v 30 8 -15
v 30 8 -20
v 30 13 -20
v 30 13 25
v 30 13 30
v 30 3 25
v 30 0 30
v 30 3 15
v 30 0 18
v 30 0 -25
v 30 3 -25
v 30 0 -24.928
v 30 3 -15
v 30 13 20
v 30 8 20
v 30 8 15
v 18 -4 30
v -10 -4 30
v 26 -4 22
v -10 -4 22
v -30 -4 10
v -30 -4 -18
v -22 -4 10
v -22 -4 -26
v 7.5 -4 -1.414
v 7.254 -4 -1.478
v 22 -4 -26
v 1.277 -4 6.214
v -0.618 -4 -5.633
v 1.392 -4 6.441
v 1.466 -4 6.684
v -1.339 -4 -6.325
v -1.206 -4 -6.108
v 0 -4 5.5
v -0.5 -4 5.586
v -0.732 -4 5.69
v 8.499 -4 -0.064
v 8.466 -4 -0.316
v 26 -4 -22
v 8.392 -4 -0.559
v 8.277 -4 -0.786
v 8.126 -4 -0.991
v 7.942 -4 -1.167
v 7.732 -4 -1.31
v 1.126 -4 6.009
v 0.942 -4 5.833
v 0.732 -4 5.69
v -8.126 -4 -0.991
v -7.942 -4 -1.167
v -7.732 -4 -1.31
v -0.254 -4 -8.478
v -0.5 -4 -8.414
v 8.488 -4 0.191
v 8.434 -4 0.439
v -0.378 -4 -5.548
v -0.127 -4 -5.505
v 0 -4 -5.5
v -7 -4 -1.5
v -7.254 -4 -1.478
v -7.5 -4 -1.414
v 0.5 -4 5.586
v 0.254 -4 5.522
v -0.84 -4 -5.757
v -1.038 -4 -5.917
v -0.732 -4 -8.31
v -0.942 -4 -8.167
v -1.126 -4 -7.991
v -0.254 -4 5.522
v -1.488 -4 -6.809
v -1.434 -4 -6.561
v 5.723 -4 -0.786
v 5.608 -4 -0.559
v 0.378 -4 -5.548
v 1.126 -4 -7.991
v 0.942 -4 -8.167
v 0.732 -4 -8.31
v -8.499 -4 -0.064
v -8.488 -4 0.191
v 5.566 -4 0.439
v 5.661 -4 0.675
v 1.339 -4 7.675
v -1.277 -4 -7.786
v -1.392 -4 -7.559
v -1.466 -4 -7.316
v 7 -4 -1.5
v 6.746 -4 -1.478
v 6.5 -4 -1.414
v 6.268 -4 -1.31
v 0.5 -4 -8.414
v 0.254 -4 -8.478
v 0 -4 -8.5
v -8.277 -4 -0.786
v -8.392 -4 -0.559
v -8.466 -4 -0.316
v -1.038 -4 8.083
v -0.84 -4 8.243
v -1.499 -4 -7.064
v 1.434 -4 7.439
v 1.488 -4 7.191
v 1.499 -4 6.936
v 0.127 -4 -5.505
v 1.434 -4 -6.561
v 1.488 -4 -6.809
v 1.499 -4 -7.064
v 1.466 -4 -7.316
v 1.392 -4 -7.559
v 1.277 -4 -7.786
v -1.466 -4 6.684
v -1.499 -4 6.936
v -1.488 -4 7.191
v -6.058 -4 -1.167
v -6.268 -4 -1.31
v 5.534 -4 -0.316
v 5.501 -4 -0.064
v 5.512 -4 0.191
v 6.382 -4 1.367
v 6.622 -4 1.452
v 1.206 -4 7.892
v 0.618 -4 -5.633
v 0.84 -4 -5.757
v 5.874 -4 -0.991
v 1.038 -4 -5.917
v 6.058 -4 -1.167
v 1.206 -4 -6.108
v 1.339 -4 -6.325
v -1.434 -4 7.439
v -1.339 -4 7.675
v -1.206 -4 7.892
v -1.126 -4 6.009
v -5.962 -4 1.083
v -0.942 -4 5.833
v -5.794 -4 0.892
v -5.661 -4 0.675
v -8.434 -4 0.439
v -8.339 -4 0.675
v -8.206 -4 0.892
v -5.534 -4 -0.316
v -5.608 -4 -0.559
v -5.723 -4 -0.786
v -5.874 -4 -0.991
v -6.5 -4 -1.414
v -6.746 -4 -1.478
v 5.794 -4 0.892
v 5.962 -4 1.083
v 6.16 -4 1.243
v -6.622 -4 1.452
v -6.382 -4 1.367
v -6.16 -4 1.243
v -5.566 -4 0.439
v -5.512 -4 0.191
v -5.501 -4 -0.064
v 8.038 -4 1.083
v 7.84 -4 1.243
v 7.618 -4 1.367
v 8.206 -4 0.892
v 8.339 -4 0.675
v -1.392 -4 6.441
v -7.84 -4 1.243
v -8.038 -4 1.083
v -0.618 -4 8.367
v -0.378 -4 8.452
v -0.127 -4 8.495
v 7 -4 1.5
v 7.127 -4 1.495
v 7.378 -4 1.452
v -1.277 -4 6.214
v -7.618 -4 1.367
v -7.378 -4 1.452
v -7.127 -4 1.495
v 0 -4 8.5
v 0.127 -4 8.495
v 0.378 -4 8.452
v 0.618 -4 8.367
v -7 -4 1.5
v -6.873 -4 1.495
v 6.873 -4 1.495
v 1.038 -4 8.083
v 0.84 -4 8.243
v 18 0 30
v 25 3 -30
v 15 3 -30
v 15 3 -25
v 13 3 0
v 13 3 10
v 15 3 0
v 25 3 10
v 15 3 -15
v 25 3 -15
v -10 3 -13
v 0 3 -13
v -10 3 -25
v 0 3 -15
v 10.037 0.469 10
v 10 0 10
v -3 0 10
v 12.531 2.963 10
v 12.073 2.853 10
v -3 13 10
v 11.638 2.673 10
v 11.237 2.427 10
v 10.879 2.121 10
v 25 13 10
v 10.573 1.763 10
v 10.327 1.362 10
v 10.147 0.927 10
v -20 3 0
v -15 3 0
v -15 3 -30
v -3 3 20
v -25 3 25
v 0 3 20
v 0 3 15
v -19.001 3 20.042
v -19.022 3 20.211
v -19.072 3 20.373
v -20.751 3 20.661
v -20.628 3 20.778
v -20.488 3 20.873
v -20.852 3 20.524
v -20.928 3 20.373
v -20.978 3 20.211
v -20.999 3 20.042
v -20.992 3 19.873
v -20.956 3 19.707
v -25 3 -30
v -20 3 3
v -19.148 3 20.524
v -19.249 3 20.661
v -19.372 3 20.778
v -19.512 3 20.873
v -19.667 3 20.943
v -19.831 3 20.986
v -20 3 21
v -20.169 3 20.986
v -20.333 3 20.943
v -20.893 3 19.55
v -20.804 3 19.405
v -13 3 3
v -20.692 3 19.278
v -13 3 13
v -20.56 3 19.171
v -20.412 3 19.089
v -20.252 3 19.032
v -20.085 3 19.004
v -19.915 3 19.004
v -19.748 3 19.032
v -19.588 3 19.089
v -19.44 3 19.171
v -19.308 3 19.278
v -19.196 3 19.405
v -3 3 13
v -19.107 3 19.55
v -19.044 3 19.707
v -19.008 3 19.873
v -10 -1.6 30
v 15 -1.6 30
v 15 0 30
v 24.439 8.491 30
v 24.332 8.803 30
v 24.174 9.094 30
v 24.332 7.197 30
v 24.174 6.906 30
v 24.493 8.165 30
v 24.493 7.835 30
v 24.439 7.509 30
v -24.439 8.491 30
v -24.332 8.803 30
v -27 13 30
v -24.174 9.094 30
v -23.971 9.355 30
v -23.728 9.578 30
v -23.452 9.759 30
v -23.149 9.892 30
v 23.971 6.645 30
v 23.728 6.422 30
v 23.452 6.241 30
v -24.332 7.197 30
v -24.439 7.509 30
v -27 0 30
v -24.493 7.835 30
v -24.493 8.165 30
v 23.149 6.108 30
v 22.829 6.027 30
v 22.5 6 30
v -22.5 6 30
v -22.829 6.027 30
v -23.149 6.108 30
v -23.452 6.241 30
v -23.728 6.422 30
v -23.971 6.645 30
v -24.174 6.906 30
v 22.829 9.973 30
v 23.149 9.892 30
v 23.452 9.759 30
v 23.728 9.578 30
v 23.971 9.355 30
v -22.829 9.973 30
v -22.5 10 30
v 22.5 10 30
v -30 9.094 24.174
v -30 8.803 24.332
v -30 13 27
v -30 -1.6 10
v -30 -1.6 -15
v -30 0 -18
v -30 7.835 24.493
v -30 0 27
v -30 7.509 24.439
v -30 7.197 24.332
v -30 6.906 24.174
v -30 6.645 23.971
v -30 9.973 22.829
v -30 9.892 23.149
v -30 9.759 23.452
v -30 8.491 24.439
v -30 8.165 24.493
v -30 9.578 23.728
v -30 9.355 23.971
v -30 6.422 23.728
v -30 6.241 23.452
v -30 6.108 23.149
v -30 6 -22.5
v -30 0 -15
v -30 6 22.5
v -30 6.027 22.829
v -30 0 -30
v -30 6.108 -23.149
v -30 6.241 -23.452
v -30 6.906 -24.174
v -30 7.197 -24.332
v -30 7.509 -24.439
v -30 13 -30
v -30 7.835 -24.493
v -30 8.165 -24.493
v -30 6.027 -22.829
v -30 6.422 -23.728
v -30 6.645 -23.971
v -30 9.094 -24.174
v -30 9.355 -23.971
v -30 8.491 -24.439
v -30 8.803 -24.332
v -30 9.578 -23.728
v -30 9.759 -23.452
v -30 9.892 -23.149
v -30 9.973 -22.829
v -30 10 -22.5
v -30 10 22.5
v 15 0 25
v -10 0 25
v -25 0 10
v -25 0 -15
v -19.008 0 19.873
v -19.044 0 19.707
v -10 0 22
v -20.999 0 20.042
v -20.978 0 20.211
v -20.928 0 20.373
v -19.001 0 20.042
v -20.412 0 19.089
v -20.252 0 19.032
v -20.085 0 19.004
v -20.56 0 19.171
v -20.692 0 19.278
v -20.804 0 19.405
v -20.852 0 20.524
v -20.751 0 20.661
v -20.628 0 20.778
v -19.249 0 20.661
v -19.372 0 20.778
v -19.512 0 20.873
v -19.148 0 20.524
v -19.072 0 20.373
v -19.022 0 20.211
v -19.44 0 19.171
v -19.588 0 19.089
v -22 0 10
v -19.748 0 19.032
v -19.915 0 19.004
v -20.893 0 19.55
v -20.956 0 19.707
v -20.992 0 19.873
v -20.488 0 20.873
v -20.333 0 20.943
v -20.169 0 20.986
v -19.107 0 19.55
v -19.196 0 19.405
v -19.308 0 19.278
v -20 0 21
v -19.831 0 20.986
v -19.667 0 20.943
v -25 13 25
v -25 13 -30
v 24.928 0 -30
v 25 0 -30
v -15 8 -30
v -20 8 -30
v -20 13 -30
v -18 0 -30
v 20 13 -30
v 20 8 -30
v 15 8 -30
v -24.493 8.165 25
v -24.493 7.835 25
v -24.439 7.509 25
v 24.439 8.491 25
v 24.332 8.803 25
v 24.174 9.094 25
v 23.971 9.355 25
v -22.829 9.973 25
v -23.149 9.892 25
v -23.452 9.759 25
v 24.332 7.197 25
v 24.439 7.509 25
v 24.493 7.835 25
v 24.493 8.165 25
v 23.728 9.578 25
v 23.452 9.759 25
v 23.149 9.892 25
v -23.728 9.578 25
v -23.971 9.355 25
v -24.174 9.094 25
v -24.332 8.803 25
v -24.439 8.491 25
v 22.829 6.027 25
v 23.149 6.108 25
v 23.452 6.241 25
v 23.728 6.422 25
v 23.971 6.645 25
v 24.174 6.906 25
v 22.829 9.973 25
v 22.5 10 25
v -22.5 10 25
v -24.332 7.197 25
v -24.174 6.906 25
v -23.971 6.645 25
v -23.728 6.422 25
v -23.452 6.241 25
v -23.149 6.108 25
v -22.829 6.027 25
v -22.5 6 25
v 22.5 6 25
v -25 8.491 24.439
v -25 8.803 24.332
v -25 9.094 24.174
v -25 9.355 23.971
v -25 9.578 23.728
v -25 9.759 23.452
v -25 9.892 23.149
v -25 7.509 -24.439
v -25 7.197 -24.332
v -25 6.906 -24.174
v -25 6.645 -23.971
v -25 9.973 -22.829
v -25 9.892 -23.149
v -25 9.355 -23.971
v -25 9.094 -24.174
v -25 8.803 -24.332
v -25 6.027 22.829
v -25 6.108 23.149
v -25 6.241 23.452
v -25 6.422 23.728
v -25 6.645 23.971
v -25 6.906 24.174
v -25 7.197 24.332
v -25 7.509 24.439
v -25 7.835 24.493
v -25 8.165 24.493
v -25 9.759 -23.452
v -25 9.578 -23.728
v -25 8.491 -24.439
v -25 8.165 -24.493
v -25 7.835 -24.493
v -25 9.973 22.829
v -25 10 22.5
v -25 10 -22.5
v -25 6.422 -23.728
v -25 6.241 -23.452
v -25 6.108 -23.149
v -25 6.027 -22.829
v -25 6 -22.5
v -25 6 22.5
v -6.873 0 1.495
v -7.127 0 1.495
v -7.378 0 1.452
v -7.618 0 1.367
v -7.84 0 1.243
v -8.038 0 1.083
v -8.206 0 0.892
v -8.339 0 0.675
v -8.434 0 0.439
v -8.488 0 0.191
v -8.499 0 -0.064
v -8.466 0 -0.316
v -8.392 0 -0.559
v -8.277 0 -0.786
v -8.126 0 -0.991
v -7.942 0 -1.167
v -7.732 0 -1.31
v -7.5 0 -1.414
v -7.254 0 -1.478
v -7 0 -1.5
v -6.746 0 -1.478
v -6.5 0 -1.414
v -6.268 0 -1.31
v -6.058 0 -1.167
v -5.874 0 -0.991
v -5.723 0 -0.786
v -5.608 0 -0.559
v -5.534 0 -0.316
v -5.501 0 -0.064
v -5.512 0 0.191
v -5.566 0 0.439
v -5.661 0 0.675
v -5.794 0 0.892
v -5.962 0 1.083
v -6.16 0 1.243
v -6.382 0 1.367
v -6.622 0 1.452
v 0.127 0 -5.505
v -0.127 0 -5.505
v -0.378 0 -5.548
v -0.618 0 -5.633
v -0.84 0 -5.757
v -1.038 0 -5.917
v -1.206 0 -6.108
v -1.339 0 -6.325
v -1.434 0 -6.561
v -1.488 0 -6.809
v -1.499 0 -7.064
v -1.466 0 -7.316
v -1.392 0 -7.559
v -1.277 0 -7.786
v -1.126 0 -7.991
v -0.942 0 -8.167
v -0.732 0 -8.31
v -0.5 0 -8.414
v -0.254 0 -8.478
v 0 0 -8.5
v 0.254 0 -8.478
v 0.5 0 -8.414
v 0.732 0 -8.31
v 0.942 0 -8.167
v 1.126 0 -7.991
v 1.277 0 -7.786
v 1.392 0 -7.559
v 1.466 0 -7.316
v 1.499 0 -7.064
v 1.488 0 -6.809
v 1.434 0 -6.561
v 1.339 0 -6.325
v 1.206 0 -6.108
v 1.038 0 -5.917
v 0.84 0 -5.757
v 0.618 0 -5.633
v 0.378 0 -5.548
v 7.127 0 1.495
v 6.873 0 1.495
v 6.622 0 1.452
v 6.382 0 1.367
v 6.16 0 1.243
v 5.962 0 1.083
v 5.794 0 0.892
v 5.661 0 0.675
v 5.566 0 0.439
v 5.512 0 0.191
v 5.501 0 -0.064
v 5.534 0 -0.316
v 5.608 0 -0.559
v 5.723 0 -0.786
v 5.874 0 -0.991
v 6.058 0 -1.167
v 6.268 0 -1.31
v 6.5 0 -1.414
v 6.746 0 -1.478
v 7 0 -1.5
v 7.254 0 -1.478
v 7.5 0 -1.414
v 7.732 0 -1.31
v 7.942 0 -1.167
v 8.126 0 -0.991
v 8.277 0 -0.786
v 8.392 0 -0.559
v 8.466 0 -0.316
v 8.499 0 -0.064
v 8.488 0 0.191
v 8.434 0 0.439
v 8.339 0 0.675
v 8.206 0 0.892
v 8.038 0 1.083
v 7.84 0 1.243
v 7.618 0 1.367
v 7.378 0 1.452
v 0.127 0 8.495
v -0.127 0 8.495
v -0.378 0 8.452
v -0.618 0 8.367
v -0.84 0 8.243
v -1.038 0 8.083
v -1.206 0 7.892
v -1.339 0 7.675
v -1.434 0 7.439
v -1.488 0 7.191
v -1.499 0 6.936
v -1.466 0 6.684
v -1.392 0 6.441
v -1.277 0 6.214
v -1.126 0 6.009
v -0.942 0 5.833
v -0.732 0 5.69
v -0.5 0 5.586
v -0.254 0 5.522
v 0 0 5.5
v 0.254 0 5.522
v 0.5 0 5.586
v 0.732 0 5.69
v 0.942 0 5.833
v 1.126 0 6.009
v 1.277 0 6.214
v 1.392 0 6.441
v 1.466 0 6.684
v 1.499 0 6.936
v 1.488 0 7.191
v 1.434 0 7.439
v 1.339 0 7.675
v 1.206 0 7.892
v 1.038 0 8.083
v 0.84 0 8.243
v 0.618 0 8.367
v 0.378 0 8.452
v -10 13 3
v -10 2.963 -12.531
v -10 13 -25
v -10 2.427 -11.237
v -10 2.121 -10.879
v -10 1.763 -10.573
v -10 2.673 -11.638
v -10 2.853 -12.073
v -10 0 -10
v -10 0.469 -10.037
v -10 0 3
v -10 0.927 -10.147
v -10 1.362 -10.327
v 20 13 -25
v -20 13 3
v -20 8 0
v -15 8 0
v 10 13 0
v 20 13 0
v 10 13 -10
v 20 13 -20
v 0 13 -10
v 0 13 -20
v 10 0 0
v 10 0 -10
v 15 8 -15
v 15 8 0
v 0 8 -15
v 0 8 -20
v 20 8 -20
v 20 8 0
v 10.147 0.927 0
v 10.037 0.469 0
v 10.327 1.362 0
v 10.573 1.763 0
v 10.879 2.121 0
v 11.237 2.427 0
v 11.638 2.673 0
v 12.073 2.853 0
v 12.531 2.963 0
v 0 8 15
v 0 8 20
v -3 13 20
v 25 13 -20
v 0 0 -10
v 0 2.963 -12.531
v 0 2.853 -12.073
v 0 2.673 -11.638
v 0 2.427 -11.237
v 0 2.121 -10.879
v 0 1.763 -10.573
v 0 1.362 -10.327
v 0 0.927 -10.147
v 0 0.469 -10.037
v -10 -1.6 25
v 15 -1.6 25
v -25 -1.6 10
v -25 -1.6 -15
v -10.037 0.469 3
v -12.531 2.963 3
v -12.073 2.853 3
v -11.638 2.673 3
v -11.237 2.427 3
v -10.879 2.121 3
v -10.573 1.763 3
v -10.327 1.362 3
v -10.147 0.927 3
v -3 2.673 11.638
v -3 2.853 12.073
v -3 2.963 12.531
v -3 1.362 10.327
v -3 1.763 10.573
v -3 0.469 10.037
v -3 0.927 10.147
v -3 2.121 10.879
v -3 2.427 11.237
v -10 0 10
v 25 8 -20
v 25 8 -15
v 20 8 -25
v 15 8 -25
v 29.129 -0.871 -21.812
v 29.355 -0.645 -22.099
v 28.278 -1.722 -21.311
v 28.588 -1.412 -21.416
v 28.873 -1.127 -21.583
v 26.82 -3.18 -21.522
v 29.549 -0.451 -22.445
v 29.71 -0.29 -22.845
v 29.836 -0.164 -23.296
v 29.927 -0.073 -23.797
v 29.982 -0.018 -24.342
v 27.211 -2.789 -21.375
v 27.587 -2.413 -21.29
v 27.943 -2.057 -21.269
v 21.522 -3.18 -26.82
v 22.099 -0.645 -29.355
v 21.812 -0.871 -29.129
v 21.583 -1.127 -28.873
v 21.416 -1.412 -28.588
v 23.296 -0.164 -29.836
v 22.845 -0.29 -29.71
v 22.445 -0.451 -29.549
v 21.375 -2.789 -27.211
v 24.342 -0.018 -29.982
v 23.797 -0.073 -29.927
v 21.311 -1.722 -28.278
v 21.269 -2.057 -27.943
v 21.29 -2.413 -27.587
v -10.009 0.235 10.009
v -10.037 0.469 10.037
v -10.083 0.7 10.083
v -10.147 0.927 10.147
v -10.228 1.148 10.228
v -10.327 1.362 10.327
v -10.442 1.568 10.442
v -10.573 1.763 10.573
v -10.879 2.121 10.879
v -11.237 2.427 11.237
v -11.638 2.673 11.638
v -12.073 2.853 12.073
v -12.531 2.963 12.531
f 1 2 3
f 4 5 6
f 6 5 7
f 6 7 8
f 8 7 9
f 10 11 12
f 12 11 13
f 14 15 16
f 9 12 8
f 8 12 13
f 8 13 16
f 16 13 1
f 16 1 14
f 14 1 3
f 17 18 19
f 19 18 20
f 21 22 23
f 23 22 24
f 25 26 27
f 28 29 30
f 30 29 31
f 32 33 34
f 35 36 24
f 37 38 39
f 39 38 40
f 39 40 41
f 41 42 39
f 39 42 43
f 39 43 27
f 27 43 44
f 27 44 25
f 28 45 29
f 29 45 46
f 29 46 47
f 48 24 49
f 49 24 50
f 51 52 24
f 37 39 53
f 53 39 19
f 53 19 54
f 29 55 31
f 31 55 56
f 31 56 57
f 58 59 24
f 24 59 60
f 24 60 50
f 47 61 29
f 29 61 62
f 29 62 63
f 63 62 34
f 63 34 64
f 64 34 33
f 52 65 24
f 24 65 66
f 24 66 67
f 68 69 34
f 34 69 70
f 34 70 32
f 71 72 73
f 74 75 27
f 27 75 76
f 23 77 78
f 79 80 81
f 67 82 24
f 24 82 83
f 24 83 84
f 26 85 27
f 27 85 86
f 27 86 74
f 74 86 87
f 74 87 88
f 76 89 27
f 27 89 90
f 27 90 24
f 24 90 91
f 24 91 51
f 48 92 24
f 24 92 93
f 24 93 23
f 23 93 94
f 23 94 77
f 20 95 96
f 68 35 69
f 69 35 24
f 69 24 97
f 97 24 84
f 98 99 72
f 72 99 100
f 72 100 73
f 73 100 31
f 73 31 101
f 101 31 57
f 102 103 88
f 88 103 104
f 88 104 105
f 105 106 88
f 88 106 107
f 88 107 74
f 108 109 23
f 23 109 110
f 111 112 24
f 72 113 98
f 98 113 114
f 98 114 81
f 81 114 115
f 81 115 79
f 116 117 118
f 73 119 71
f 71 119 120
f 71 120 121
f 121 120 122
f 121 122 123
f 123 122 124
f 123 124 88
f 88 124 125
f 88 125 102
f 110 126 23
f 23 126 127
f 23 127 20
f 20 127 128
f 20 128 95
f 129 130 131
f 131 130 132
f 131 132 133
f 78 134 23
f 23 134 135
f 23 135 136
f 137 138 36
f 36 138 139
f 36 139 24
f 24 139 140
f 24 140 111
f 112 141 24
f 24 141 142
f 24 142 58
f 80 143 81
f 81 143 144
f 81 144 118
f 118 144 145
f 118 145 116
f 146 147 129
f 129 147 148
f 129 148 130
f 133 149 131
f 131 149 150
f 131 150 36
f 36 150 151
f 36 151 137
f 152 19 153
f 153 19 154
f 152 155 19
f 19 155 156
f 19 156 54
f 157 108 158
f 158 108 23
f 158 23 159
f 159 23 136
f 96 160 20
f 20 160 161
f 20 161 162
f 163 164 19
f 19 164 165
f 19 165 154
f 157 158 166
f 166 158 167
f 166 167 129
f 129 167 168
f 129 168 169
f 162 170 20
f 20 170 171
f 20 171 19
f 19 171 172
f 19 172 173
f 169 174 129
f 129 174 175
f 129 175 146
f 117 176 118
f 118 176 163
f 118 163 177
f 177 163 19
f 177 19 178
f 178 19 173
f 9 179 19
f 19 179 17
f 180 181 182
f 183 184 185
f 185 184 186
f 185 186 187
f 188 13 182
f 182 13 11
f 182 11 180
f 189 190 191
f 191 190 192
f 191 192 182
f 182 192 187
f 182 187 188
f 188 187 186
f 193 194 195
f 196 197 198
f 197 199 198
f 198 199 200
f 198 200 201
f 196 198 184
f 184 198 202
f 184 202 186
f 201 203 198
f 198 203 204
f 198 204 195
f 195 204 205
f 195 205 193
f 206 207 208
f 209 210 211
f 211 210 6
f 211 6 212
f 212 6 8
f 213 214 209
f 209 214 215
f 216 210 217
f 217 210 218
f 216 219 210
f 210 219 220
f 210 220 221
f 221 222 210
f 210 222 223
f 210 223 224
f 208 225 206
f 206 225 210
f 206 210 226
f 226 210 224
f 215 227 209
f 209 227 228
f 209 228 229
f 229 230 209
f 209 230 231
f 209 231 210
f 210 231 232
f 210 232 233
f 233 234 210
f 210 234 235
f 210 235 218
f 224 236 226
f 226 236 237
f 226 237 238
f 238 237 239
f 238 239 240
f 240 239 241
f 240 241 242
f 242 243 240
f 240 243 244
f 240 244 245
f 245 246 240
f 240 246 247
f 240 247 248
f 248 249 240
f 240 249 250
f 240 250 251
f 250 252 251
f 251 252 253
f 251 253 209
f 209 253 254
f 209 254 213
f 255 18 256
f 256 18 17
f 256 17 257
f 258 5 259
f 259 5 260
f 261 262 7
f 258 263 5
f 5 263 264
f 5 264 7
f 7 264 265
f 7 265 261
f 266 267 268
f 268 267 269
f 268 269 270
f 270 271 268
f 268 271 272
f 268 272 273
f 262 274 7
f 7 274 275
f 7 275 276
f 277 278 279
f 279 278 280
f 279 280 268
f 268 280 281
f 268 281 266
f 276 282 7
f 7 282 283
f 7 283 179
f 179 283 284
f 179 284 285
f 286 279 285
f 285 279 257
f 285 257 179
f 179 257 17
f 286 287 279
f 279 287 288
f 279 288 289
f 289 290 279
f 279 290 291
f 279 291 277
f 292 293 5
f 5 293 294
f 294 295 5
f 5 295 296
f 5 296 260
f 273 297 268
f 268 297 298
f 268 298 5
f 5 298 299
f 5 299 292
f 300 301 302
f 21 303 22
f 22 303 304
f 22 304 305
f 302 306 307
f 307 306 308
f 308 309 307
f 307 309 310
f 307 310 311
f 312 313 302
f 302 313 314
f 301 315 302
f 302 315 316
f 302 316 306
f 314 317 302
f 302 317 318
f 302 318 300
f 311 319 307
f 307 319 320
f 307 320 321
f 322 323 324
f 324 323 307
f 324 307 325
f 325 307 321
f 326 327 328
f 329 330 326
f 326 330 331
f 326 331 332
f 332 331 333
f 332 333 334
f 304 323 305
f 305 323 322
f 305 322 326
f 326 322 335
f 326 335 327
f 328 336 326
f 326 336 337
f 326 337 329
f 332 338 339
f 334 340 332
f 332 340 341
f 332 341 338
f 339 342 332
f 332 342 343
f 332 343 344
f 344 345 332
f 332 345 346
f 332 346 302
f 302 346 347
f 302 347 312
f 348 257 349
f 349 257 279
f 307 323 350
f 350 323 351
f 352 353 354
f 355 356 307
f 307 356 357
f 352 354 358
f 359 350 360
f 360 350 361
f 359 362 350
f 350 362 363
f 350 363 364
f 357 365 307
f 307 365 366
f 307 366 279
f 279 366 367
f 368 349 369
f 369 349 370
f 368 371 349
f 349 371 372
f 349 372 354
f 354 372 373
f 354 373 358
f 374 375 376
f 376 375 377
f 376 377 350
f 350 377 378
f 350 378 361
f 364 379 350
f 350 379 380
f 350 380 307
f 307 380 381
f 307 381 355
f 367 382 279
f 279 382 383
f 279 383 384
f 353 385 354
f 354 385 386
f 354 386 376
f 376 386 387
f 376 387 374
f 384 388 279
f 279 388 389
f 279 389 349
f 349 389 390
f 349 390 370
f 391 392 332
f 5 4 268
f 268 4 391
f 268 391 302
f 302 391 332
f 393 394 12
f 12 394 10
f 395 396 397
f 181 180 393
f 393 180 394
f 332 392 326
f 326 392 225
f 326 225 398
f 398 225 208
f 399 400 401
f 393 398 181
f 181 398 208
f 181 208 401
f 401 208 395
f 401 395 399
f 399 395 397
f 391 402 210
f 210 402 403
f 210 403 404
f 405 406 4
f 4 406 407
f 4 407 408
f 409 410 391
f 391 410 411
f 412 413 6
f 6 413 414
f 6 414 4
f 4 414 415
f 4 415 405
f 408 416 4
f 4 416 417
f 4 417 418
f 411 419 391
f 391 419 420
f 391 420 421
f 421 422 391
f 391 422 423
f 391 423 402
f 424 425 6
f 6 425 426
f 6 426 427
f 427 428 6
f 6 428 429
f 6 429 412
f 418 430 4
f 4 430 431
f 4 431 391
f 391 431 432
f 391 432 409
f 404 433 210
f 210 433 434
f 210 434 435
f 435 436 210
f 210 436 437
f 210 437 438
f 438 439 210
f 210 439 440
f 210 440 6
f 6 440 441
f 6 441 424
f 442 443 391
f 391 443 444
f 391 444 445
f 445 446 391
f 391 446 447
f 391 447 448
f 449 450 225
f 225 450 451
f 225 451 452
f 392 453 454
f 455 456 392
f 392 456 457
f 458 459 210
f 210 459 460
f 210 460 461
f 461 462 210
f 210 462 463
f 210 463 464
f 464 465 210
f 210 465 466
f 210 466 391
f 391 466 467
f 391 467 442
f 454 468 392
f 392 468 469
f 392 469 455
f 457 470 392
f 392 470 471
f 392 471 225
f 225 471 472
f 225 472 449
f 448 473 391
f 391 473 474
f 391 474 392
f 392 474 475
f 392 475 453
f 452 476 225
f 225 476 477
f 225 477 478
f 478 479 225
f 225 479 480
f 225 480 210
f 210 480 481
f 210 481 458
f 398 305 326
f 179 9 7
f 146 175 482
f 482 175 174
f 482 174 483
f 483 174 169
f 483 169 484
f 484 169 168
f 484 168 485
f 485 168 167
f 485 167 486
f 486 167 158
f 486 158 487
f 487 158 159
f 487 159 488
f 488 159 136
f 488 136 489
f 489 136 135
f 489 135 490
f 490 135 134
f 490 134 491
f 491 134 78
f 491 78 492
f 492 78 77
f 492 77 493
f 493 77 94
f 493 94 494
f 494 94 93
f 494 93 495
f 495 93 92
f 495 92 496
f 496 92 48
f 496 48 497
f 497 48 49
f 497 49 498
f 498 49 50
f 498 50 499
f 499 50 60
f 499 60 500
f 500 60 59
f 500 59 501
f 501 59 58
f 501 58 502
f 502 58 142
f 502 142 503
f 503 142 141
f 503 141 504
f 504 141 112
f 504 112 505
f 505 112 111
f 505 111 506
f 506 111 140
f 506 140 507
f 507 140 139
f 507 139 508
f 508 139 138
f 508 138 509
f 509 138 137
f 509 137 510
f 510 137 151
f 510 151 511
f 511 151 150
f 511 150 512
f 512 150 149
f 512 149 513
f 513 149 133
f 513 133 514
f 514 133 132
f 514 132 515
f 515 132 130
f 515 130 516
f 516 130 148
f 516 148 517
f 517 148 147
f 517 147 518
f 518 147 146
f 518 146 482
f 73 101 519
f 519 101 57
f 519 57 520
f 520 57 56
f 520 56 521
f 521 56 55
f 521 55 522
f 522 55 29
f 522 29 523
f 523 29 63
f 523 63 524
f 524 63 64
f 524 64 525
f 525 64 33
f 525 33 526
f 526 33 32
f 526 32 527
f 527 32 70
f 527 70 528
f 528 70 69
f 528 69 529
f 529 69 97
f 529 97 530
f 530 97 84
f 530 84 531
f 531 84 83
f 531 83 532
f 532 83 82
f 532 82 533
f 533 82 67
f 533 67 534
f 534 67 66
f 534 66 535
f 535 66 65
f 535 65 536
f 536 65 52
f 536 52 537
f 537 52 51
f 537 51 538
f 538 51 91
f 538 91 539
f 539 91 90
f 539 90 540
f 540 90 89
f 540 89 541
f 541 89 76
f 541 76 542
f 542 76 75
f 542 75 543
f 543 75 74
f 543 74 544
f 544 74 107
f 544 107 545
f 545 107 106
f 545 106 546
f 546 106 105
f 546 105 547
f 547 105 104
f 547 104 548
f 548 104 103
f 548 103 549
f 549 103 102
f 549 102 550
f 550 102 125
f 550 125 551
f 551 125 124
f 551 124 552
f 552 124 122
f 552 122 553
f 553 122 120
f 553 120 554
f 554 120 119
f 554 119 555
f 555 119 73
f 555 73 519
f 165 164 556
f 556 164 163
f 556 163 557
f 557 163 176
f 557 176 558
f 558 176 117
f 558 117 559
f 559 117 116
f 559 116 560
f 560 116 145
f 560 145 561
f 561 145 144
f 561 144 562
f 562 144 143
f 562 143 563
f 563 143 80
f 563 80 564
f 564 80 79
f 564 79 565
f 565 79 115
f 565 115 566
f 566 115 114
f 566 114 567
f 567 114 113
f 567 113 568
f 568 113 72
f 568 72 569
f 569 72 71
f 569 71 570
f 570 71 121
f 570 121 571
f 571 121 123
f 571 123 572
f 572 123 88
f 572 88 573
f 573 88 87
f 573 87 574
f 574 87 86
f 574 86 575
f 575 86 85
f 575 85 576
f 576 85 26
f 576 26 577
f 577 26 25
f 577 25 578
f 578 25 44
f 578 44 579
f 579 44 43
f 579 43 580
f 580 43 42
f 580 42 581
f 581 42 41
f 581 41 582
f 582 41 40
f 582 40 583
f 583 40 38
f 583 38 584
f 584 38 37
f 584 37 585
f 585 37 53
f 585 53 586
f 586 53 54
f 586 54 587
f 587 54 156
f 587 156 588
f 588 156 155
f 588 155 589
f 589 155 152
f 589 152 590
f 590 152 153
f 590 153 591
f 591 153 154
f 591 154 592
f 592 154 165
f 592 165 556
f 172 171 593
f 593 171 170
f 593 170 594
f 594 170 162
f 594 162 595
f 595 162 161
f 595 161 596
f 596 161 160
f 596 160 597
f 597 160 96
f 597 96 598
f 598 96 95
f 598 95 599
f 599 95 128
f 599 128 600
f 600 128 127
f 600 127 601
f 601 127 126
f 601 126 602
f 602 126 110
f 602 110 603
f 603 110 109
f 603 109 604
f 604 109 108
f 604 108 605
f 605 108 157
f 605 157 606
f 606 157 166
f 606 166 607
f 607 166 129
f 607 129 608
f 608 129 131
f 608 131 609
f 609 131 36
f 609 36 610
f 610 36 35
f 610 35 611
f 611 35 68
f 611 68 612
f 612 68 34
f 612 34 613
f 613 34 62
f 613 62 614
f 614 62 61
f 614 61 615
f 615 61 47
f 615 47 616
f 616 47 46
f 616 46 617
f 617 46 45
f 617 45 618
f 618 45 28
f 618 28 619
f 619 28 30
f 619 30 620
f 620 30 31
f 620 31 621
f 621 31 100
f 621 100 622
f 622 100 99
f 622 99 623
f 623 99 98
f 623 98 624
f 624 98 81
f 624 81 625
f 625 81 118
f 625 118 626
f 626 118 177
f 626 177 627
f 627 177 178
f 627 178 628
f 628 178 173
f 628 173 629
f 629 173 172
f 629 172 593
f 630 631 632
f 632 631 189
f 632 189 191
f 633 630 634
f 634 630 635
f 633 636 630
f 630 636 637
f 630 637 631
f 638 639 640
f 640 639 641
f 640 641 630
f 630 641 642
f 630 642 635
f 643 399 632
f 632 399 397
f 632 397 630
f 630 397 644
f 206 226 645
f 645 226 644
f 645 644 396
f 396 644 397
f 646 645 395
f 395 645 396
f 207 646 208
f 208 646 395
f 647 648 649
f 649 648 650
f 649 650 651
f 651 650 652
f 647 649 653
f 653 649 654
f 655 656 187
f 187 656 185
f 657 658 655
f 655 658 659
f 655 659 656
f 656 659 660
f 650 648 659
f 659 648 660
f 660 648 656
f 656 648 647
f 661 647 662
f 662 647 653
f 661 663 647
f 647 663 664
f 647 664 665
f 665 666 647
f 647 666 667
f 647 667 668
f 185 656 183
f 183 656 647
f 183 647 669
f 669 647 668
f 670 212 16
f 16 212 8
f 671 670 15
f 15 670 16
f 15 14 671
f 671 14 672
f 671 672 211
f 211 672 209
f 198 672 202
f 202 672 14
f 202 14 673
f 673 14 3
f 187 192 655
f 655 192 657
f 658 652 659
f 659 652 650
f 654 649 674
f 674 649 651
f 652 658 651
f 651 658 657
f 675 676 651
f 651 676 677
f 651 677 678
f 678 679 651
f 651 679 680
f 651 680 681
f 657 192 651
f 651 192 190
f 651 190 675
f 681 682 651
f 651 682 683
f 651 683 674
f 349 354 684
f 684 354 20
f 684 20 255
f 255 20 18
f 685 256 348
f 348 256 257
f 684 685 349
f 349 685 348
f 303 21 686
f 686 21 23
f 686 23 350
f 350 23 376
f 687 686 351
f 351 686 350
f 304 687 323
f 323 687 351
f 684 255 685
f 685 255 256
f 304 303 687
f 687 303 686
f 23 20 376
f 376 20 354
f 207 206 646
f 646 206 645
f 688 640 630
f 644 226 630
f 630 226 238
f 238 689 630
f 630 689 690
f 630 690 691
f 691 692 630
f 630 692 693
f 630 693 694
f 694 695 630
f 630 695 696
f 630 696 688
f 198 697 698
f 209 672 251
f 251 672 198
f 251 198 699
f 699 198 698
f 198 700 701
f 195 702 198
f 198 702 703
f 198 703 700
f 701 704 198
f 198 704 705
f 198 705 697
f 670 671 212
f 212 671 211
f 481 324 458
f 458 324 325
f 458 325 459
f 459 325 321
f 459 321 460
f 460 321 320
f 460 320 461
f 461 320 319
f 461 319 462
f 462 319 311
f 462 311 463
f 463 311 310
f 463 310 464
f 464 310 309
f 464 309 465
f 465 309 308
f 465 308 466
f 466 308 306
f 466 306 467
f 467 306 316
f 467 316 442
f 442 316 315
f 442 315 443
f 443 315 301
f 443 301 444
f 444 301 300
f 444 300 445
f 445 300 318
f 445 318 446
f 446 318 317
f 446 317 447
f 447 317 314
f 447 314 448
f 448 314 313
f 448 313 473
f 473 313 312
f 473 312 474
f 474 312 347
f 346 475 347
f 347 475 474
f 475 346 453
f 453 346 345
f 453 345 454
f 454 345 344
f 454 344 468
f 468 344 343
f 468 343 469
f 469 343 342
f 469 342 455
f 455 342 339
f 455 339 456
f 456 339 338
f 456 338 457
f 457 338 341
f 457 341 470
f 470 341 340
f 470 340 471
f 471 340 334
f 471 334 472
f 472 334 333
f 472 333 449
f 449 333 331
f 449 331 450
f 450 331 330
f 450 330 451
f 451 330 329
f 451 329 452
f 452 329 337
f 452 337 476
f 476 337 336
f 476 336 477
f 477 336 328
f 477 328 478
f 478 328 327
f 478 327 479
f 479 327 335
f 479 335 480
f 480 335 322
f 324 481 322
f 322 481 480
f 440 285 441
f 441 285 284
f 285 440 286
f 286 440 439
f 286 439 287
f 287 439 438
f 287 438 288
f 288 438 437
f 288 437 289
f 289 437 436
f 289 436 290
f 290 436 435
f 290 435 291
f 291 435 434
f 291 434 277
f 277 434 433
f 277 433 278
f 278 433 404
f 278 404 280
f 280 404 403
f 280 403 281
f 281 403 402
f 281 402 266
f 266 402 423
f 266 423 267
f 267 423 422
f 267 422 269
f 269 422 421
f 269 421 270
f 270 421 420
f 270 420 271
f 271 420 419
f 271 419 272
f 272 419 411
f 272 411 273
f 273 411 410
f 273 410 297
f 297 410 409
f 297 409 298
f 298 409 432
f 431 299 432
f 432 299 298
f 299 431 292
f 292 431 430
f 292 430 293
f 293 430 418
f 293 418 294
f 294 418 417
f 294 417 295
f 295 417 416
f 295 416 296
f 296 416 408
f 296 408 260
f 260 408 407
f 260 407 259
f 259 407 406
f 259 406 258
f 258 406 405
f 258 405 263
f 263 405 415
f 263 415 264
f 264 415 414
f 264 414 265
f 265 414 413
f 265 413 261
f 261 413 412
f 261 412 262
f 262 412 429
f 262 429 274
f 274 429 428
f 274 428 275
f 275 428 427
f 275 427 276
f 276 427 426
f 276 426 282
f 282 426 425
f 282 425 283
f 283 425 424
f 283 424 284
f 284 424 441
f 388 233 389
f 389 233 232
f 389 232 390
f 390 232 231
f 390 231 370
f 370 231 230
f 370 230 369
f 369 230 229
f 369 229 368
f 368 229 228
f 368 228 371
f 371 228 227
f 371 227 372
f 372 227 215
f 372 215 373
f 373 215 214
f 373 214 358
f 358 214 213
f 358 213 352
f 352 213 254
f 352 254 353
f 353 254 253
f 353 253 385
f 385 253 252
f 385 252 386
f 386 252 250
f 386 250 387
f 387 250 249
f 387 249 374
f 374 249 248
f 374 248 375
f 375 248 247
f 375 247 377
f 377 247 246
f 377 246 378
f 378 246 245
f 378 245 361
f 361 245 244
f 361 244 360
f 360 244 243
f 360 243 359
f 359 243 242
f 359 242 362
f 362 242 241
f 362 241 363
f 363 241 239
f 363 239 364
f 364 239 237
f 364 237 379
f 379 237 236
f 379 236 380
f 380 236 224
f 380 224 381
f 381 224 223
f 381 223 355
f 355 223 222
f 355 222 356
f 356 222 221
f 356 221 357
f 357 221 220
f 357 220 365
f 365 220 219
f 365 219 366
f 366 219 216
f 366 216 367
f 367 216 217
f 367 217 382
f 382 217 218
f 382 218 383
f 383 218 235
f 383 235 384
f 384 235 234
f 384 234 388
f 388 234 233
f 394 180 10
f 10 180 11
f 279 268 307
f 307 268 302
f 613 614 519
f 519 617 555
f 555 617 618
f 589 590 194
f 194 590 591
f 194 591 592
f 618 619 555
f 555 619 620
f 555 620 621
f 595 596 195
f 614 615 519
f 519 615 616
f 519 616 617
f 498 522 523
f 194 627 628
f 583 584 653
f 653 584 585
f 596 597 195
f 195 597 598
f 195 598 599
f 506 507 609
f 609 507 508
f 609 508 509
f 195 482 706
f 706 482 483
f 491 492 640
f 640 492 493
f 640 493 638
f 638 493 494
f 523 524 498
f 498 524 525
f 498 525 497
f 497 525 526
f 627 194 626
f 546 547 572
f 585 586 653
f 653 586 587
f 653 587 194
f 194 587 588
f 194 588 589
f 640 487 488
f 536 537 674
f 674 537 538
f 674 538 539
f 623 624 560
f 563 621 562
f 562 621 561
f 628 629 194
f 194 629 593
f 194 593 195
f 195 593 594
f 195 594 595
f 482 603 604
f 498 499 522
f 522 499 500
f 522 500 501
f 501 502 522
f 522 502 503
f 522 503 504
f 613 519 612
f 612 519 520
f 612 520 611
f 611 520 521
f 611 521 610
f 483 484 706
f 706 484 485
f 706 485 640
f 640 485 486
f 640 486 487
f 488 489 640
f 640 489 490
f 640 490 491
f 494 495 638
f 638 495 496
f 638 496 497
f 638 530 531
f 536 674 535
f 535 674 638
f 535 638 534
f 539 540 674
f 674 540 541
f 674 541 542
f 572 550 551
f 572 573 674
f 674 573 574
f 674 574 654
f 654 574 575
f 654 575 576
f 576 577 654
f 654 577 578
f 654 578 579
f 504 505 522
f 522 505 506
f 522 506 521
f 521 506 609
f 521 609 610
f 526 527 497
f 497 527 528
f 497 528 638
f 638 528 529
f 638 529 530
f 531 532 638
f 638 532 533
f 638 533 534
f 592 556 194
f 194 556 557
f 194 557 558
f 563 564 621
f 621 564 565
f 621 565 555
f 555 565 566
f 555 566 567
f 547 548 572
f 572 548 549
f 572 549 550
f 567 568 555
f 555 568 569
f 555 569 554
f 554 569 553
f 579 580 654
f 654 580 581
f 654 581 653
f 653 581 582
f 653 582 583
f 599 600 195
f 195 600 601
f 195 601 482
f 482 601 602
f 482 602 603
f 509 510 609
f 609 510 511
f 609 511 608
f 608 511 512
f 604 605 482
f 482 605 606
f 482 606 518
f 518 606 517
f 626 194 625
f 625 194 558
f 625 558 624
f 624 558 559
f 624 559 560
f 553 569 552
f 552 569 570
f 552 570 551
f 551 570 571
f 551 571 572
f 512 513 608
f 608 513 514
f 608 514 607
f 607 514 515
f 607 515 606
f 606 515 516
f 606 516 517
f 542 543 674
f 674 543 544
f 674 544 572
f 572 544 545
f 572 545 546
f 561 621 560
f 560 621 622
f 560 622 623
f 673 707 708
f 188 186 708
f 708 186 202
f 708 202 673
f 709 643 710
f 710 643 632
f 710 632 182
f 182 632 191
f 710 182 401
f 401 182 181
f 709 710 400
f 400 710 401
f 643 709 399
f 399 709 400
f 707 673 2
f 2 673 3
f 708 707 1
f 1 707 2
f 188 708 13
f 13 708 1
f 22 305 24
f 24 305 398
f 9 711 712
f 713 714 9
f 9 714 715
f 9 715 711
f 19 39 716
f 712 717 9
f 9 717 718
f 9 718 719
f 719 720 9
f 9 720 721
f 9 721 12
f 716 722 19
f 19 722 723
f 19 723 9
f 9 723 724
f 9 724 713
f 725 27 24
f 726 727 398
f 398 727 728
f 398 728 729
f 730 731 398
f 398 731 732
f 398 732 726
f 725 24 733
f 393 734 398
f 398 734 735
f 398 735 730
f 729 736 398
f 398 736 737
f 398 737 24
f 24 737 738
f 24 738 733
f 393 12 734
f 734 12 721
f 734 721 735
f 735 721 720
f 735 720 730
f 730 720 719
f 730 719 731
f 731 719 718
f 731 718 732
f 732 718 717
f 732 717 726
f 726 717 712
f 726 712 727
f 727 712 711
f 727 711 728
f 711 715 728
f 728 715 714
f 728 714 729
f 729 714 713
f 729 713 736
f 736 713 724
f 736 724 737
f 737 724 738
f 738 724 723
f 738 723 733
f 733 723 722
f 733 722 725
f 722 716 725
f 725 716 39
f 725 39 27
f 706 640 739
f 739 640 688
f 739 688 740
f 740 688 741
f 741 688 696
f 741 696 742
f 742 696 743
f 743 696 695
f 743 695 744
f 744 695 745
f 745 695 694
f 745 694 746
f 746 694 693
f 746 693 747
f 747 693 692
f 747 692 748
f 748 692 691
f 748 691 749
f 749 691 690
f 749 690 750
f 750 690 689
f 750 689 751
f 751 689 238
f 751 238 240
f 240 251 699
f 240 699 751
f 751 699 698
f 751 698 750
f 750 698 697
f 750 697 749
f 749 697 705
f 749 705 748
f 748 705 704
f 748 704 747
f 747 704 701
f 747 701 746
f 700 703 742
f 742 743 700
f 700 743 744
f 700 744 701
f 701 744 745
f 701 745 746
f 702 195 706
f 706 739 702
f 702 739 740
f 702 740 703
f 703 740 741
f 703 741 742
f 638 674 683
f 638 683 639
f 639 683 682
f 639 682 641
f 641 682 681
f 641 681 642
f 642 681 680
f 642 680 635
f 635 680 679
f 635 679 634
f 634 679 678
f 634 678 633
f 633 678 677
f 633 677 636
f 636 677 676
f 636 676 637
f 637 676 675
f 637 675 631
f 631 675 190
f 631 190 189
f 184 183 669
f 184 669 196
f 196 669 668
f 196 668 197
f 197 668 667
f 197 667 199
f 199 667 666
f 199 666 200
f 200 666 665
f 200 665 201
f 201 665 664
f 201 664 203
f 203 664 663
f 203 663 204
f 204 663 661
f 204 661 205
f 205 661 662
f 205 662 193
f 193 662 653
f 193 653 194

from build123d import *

# Parameters (mm, degrees)
SKETCH_2_W           = 60
SKETCH_2_H           = 60
EXTRUDE_1_DEPTH      = 3
SKETCH_6_R           = 1.5
CUT_EXTRUDE_2_DEPTH  = 3
EXTRUDE_START        = -30
EXTRUDE_2_DEPTH      = 30
EXTRUDE_START_2      = 30
EXTRUDE_3_DEPTH      = 30
CUT_EXTRUDE_START    = 13
SKETCH_9_W           = 10
SKETCH_9_H           = 10
CUT_EXTRUDE_3_DEPTH  = 10
CUT_EXTRUDE_START_2  = -15
SKETCH_10_W          = 5
SKETCH_10_H          = 5
CUT_EXTRUDE_4_DEPTH  = 5
CUT_EXTRUDE_START_3  = 10
SKETCH_11_W          = 5
SKETCH_11_H          = 5
CUT_EXTRUDE_5_DEPTH  = 5
EXTRUDE_5_DEPTH      = 1.6
EXTRUDE_START_3      = -1.6
SKETCH_17_W          = 28
SKETCH_17_H          = 8
SKETCH_17_W_2        = 8
SKETCH_17_H_2        = 28
EXTRUDE_6_DEPTH      = 2
SKETCH_21_R          = 12.5
EXTRUDE_8_DEPTH      = 4
CUT_EXTRUDE_START_4  = -4
SKETCH_22_R          = 1.5
CUT_EXTRUDE_6_DEPTH  = 4
EXTRUDE_START_4      = -4
SKETCH_23_R          = 1.5
EXTRUDE_9_DEPTH      = 4
EXTRUDE_START_5      = -3.6
SKETCH_24_W          = 8
SKETCH_24_H          = 28
SKETCH_24_W_2        = 28
SKETCH_24_H_2        = 8
EXTRUDE_10_DEPTH     = 0.4
EXTRUDE_START_6      = 3
SKETCH_25_W          = 10
SKETCH_25_H          = 3
SKETCH_25_W_2        = 3
SKETCH_25_H_2        = 10
EXTRUDE_11_DEPTH     = 10
SKETCH_26_W          = 55
SKETCH_26_H          = 5
SKETCH_26_W_2        = 5
SKETCH_26_H_2        = 55
EXTRUDE_12_DEPTH     = 10
CUT_EXTRUDE_START_5  = -30
CUT_EXTRUDE_7_DEPTH  = 5
CUT_EXTRUDE_START_6  = 25
CUT_EXTRUDE_8_DEPTH  = 5
CUT_EXTRUDE_START_7  = 3
SKETCH_31_R          = 1
CUT_EXTRUDE_10_DEPTH = 3
CUT_EXTRUDE_11_DEPTH = 4
CUT_EXTRUDE_12_DEPTH = 13
SKETCH_34_W          = 20
SKETCH_34_H          = 20
CUT_EXTRUDE_14_DEPTH = 3
SKETCH_35_W          = 20
SKETCH_35_H          = 10
EXTRUDE_14_DEPTH     = 5
SKETCH_36_W          = 20
SKETCH_36_H          = 10
EXTRUDE_15_DEPTH     = 5
EXTRUDE_16_DEPTH     = 5
EXTRUDE_18_DEPTH     = 5
EXTRUDE_19_DEPTH     = 4
CUT_EXTRUDE_START_8  = -22
CUT_EXTRUDE_15_DEPTH = 44
CUT_EXTRUDE_16_DEPTH = 44
FILLET_1_R           = 5
FILLET_2_R           = 3


# Some blends are built 0.0001 mm under size
with BuildPart() as part:
    # 草图2 → 凸台-拉伸1 (new body)
    with BuildSketch(Plane(origin=(0, 0, 0), x_dir=(1, 0, 0), z_dir=(0, 1, 0))):
        Rectangle(SKETCH_2_W, SKETCH_2_H)
    extrude(amount=EXTRUDE_1_DEPTH)

    # 草图6 → 切除-拉伸2 (cut)
    with BuildSketch(Plane(origin=(0, 0, 0), x_dir=(1, 0, 0), z_dir=(0, 1, 0))):
        with Locations(Location((0, -7, 0), (0, 0, 270))):
            Circle(SKETCH_6_R)
        with Locations(Location((7, 0, 0), (0, 0, 270))):
            Circle(SKETCH_6_R)
        with Locations(Location((0, 7, 0), (0, 0, 270))):
            Circle(SKETCH_6_R)
        with Locations(Location((-7, 0, 0), (0, 0, 270))):
            Circle(SKETCH_6_R)
    extrude(amount=CUT_EXTRUDE_2_DEPTH, mode=Mode.SUBTRACT)

    # 草图7 → 凸台-拉伸2 (add)
    with BuildSketch(Plane.XY.offset(EXTRUDE_START)):
        Polygon((-15, 3), (-15, 8), (-20, 8), (-20, 13), (-10, 13), (-10, 3), align=None)
        Polygon((10, 3), (15, 3), (15, 8), (20, 8), (20, 13), (10, 13), align=None)
    extrude(amount=EXTRUDE_2_DEPTH)

    # 草图8 → 凸台-拉伸3 (add)
    with BuildSketch(Plane(origin=(0, 0, 0), x_dir=(0, 0, -1), z_dir=(1, 0, 0)).offset(EXTRUDE_START_2)):
        Polygon((-15, 3), (-15, 8), (-20, 8), (-20, 13), (-10, 13), (-10, 3), align=None)
        Polygon((10, 3), (15, 3), (15, 8), (20, 8), (20, 13), (10, 13), align=None)
    extrude(amount=-EXTRUDE_3_DEPTH)

    # 草图9 → 切除-拉伸3 (cut)
    with BuildSketch(Plane(origin=(0, 0, 0), x_dir=(1, 0, 0), z_dir=(0, 1, 0)).offset(CUT_EXTRUDE_START)):
        with Locations((25, 15)):
            Rectangle(SKETCH_9_W, SKETCH_9_H)
        with Locations((15, 25)):
            Rectangle(SKETCH_9_W, SKETCH_9_H)
    extrude(amount=-CUT_EXTRUDE_3_DEPTH, mode=Mode.SUBTRACT)

    # 草图10 → 切除-拉伸4 (cut)
    with BuildSketch(Plane.XY.offset(CUT_EXTRUDE_START_2)):
        with Locations((17.5, 5.5)):
            Rectangle(SKETCH_10_W, SKETCH_10_H)
    extrude(amount=CUT_EXTRUDE_4_DEPTH, mode=Mode.SUBTRACT)

    # 草图11 → 切除-拉伸5 (cut)
    with BuildSketch(Plane(origin=(0, 0, 0), x_dir=(0, 0, -1), z_dir=(1, 0, 0)).offset(CUT_EXTRUDE_START_3)):
        with Locations((17.5, 5.5)):
            Rectangle(SKETCH_11_W, SKETCH_11_H)
    extrude(amount=CUT_EXTRUDE_5_DEPTH, mode=Mode.SUBTRACT)

    # 草图16 → 凸台-拉伸5 (add)
    with BuildSketch(Plane(origin=(0, 0, 0), x_dir=(1, 0, 0), z_dir=(0, 1, 0))):
        Polygon((-10, -25), (15, -25), (15, -30), (18, -30), (18, -22), (-10, -22), align=None)
        Polygon((-22, 18), (-22, -10), (-25, -10), (-25, 15), (-30, 15), (-30, 18), align=None)
    extrude(amount=-EXTRUDE_5_DEPTH)

    # 草图17 → 凸台-拉伸6 (add)
    with BuildSketch(Plane(origin=(0, 0, 0), x_dir=(1, 0, 0), z_dir=(0, 1, 0)).offset(EXTRUDE_START_3)):
        with Locations((4, -26)):
            Rectangle(SKETCH_17_W, SKETCH_17_H)
        with Locations((-26, 4)):
            Rectangle(SKETCH_17_W_2, SKETCH_17_H_2)
    extrude(amount=-EXTRUDE_6_DEPTH)

    # 草图21 → 凸台-拉伸8 (add)
    with BuildSketch(Plane(origin=(0, 0, 0), x_dir=(1, 0, 0), z_dir=(0, 1, 0))):
        with Locations(Location((0, 0, 0), (0, 0, 270))):
            Circle(SKETCH_21_R)
    extrude(amount=-EXTRUDE_8_DEPTH)

    # 草图22 → 切除-拉伸6 (cut)
    with BuildSketch(Plane(origin=(0, 0, 0), x_dir=(1, 0, 0), z_dir=(0, 1, 0)).offset(CUT_EXTRUDE_START_4)):
        with Locations(Location((7, 0, 0), (0, 0, 270))):
            Circle(SKETCH_22_R)
        with Locations(Location((0, -7, 0), (0, 0, 270))):
            Circle(SKETCH_22_R)
        with Locations(Location((-7, 0, 0), (0, 0, 270))):
            Circle(SKETCH_22_R)
        with Locations(Location((0, 7, 0), (0, 0, 270))):
            Circle(SKETCH_22_R)
    extrude(amount=CUT_EXTRUDE_6_DEPTH, mode=Mode.SUBTRACT)

    # 草图23 → 凸台-拉伸9 (add)
    with BuildSketch(Plane(origin=(0, 0, 0), x_dir=(1, 0, 0), z_dir=(0, 1, 0)).offset(EXTRUDE_START_4)):
        Polygon((22, -18), (18, -22), (-10, -22), (-22, -10), (-22, 18), (-18, 22), (-18, 30), (18, 30), (18, 22), (22, 18), (30, 18), (30, -18), align=None)
        with Locations(Location((0, 7, 0), (0, 0, 270))):
            Circle(SKETCH_23_R, mode=Mode.SUBTRACT)
        with Locations(Location((7, 0, 0), (0, 0, 270))):
            Circle(SKETCH_23_R, mode=Mode.SUBTRACT)
        with Locations(Location((-7, 0, 0), (0, 0, 270))):
            Circle(SKETCH_23_R, mode=Mode.SUBTRACT)
        with Locations(Location((0, -7, 0), (0, 0, 270))):
            Circle(SKETCH_23_R, mode=Mode.SUBTRACT)
    extrude(amount=EXTRUDE_9_DEPTH)

    # 草图24 → 凸台-拉伸10 (add)
    with BuildSketch(Plane(origin=(0, 0, 0), x_dir=(1, 0, 0), z_dir=(0, 1, 0)).offset(EXTRUDE_START_5)):
        with Locations((-26, 4)):
            Rectangle(SKETCH_24_W, SKETCH_24_H)
        with Locations((4, -26)):
            Rectangle(SKETCH_24_W_2, SKETCH_24_H_2)
    extrude(amount=-EXTRUDE_10_DEPTH)

    # 草图25 → 凸台-拉伸11 (add)
    with BuildSketch(Plane(origin=(0, 0, 0), x_dir=(1, 0, 0), z_dir=(0, 1, 0)).offset(EXTRUDE_START_6)):
        with Locations((-15, -1.5)):
            Rectangle(SKETCH_25_W, SKETCH_25_H)
        with Locations((-1.5, -15)):
            Rectangle(SKETCH_25_W_2, SKETCH_25_H_2)
    extrude(amount=EXTRUDE_11_DEPTH)

    # 草图26 → 凸台-拉伸12 (add)
    with BuildSketch(Plane(origin=(0, 0, 0), x_dir=(1, 0, 0), z_dir=(0, 1, 0)).offset(EXTRUDE_START_6)):
        with Locations((2.5, -27.5)):
            Rectangle(SKETCH_26_W, SKETCH_26_H)
        with Locations((-27.5, 2.5)):
            Rectangle(SKETCH_26_W_2, SKETCH_26_H_2)
        with Locations((-27.5, -27.5)):
            Rectangle(SKETCH_26_W_2, SKETCH_26_H)
    extrude(amount=EXTRUDE_12_DEPTH)

    # 草图27 → 切除-拉伸7 (cut)
    with BuildSketch(Plane(origin=(0, 0, 0), x_dir=(0, 0, -1), z_dir=(1, 0, 0)).offset(CUT_EXTRUDE_START_5)):
        with BuildLine():
            Line((22.5, 6), (-22.5, 6))
            ThreePointArc((-22.5, 6), (-24.5, 8), (-22.5, 10))
            Line((-22.5, 10), (22.5, 10))
            ThreePointArc((22.5, 10), (24.5, 8), (22.5, 6))
        make_face()
    extrude(amount=CUT_EXTRUDE_7_DEPTH, mode=Mode.SUBTRACT)

    # 草图28 → 切除-拉伸8 (cut)
    with BuildSketch(Plane.XY.offset(CUT_EXTRUDE_START_6)):
        with BuildLine():
            Line((-22.5, 10), (22.5, 10))
            ThreePointArc((22.5, 10), (24.5, 8), (22.5, 6))
            Line((22.5, 6), (-22.5, 6))
            ThreePointArc((-22.5, 6), (-24.5, 8), (-22.5, 10))
        make_face()
    extrude(amount=CUT_EXTRUDE_8_DEPTH, mode=Mode.SUBTRACT)

    # 草图31 → 切除-拉伸10 (cut)
    with BuildSketch(Plane(origin=(0, 0, 0), x_dir=(1, 0, 0), z_dir=(0, 1, 0)).offset(CUT_EXTRUDE_START_7)):
        with Locations(Location((-20, -20, 0), (0, 0, 270))):
            Circle(SKETCH_31_R)
    extrude(amount=-CUT_EXTRUDE_10_DEPTH, mode=Mode.SUBTRACT)

    # 草图32 → 切除-拉伸11 (cut)
    with BuildSketch(Plane(origin=(0, 0, 0), x_dir=(1, 0, 0), z_dir=(0, 1, 0))):
        Polygon((30, 30), (30, 25), (25, 30), align=None)
    extrude(amount=CUT_EXTRUDE_11_DEPTH, mode=Mode.SUBTRACT)

    # 草图33 → 切除-拉伸12 (cut)
    with BuildSketch(Plane(origin=(0, 0, 0), x_dir=(1, 0, 0), z_dir=(0, 1, 0))):
        Polygon((-30, -30), (-27, -30), (-30, -27), align=None)
    extrude(amount=CUT_EXTRUDE_12_DEPTH, mode=Mode.SUBTRACT)

    # 草图34 → 切除-拉伸14 (cut)
    with BuildSketch(Plane(origin=(0, 0, 0), x_dir=(1, 0, 0), z_dir=(0, 1, 0)).offset(CUT_EXTRUDE_START_7)):
        Rectangle(SKETCH_34_W, SKETCH_34_H)
    extrude(amount=-CUT_EXTRUDE_14_DEPTH, mode=Mode.SUBTRACT)

    # 草图35 → 凸台-拉伸14 (add)
    with BuildSketch(Plane(origin=(0, 0, 0), x_dir=(0, 0, -1), z_dir=(1, 0, 0)).offset(EXTRUDE_START_2)):
        with Locations((0, 8)):
            Rectangle(SKETCH_35_W, SKETCH_35_H)
    extrude(amount=-EXTRUDE_14_DEPTH)

    # 草图36 → 凸台-拉伸15 (add)
    with BuildSketch(Plane.XY.offset(EXTRUDE_START)):
        with Locations((0, 8)):
            Rectangle(SKETCH_36_W, SKETCH_36_H)
    extrude(amount=EXTRUDE_15_DEPTH)

    # 草图37 → 凸台-拉伸16 (add)
    with BuildSketch(Plane.XY.offset(EXTRUDE_START)):
        Polygon((10, 3), (10, 13), (20, 13), (20, 8), (15, 8), (15, 3), align=None)
    extrude(amount=EXTRUDE_16_DEPTH)

    # 草图38 → 凸台-拉伸18 (add)
    with BuildSketch(Plane(origin=(0, 0, 0), x_dir=(0, 0, -1), z_dir=(1, 0, 0)).offset(EXTRUDE_START_2)):
        Polygon((10, 13), (20, 13), (20, 8), (15, 8), (15, 3), (10, 3), align=None)
    extrude(amount=-EXTRUDE_18_DEPTH)

    # 草图40 → 凸台-拉伸19 (add)
    with BuildSketch(Plane(origin=(0, 0, 0), x_dir=(1, 0, 0), z_dir=(0, 1, 0))):
        Polygon((-30, 18), (-18, 30), (-18, 22), (-22, 18), align=None)
        Polygon((18, 30), (30, 18), (22, 18), (18, 22), align=None)
        Polygon((30, -18), (18, -30), (18, -22), (22, -18), align=None)
    extrude(amount=-EXTRUDE_19_DEPTH)

    # 草图41 → 切除-拉伸15 (cut)
    with BuildSketch(Plane.XY.offset(CUT_EXTRUDE_START_8)):
        Polygon((30, 0), (26, -4), (30, -4), align=None)
    extrude(amount=CUT_EXTRUDE_15_DEPTH, mode=Mode.SUBTRACT)

    # 草图42 → 切除-拉伸16 (cut)
    with BuildSketch(Plane(origin=(0, 0, 0), x_dir=(0, 0, -1), z_dir=(1, 0, 0)).offset(CUT_EXTRUDE_START_8)):
        Polygon((30, -4), (30, 0), (26, -4), align=None)
    extrude(amount=CUT_EXTRUDE_16_DEPTH, mode=Mode.SUBTRACT)

    # 圆角1
    # the kernel refuses this fillet: 5 mm, written as the material it adds along each edge
    with BuildSketch(Plane(origin=(9.339745962, 0, -38.660254038), x_dir=(1.104671909501692e-12, -1.0, -1.104671909501665e-12), z_dir=(0.7071067811865389, 0, 0.7071067811865562))) as fillet_1_piece_1_section:
        with BuildLine():
            CenterArc((5, 4.898979486), FILLET_1_R, 180, 78.463040967)
            Line((0, 4.898979486), (-0.1, 4.898979486))
            Line((-0.1, 4.898979486), (-0.1, 0))
            Line((-0.1, 0), (0, -0.1))
            ThreePointArc((0, -0.1), (2, -0.1), (3.98, -0.09797959))
            Line((3.98, -0.09797959), (4, 0))
        make_face()
    fillet_1_piece_1 = extrude(amount=41.465460176, mode=Mode.PRIVATE)
    fillet_1_piece_1 = split(fillet_1_piece_1, bisect_by=Plane(origin=(24.77055683, -0.893670134, -30), z_dir=(0, 0, 1)), keep=Keep.TOP, mode=Mode.PRIVATE)
    fillet_1_piece_1 = split(fillet_1_piece_1, bisect_by=Plane(origin=(24.77055683, -3.061556652, -26.938443348), z_dir=(0, 0.7071067811865475, 0.7071067811865477)), keep=Keep.TOP, mode=Mode.PRIVATE)
    fillet_1_piece_1 = split(fillet_1_piece_1, bisect_by=Plane(origin=(26.938443348, -3.061556652, -24.77055683), z_dir=(-0.7071067811865591, 0.7071067811865359, 0)), keep=Keep.TOP, mode=Mode.PRIVATE)
    fillet_1_piece_1 = split(fillet_1_piece_1, bisect_by=Plane(origin=(30, -0.893670134, -24.77055683), z_dir=(-1, 0, 0)), keep=Keep.TOP, mode=Mode.PRIVATE)
    add(fillet_1_piece_1)

    # 圆角2
    fillet_2_edges = [part.edges().sort_by_distance(p)[0] for p in [
        (-6.5, 3, 10),
        (-10, 3, 6.5),
        (-5, 3, -10),
        (10, 3, 5),
    ]]
    fillet(fillet_2_edges, radius=FILLET_2_R - 0.0001)  # a hair under: the kernel refuses the full size


solid = part.part
